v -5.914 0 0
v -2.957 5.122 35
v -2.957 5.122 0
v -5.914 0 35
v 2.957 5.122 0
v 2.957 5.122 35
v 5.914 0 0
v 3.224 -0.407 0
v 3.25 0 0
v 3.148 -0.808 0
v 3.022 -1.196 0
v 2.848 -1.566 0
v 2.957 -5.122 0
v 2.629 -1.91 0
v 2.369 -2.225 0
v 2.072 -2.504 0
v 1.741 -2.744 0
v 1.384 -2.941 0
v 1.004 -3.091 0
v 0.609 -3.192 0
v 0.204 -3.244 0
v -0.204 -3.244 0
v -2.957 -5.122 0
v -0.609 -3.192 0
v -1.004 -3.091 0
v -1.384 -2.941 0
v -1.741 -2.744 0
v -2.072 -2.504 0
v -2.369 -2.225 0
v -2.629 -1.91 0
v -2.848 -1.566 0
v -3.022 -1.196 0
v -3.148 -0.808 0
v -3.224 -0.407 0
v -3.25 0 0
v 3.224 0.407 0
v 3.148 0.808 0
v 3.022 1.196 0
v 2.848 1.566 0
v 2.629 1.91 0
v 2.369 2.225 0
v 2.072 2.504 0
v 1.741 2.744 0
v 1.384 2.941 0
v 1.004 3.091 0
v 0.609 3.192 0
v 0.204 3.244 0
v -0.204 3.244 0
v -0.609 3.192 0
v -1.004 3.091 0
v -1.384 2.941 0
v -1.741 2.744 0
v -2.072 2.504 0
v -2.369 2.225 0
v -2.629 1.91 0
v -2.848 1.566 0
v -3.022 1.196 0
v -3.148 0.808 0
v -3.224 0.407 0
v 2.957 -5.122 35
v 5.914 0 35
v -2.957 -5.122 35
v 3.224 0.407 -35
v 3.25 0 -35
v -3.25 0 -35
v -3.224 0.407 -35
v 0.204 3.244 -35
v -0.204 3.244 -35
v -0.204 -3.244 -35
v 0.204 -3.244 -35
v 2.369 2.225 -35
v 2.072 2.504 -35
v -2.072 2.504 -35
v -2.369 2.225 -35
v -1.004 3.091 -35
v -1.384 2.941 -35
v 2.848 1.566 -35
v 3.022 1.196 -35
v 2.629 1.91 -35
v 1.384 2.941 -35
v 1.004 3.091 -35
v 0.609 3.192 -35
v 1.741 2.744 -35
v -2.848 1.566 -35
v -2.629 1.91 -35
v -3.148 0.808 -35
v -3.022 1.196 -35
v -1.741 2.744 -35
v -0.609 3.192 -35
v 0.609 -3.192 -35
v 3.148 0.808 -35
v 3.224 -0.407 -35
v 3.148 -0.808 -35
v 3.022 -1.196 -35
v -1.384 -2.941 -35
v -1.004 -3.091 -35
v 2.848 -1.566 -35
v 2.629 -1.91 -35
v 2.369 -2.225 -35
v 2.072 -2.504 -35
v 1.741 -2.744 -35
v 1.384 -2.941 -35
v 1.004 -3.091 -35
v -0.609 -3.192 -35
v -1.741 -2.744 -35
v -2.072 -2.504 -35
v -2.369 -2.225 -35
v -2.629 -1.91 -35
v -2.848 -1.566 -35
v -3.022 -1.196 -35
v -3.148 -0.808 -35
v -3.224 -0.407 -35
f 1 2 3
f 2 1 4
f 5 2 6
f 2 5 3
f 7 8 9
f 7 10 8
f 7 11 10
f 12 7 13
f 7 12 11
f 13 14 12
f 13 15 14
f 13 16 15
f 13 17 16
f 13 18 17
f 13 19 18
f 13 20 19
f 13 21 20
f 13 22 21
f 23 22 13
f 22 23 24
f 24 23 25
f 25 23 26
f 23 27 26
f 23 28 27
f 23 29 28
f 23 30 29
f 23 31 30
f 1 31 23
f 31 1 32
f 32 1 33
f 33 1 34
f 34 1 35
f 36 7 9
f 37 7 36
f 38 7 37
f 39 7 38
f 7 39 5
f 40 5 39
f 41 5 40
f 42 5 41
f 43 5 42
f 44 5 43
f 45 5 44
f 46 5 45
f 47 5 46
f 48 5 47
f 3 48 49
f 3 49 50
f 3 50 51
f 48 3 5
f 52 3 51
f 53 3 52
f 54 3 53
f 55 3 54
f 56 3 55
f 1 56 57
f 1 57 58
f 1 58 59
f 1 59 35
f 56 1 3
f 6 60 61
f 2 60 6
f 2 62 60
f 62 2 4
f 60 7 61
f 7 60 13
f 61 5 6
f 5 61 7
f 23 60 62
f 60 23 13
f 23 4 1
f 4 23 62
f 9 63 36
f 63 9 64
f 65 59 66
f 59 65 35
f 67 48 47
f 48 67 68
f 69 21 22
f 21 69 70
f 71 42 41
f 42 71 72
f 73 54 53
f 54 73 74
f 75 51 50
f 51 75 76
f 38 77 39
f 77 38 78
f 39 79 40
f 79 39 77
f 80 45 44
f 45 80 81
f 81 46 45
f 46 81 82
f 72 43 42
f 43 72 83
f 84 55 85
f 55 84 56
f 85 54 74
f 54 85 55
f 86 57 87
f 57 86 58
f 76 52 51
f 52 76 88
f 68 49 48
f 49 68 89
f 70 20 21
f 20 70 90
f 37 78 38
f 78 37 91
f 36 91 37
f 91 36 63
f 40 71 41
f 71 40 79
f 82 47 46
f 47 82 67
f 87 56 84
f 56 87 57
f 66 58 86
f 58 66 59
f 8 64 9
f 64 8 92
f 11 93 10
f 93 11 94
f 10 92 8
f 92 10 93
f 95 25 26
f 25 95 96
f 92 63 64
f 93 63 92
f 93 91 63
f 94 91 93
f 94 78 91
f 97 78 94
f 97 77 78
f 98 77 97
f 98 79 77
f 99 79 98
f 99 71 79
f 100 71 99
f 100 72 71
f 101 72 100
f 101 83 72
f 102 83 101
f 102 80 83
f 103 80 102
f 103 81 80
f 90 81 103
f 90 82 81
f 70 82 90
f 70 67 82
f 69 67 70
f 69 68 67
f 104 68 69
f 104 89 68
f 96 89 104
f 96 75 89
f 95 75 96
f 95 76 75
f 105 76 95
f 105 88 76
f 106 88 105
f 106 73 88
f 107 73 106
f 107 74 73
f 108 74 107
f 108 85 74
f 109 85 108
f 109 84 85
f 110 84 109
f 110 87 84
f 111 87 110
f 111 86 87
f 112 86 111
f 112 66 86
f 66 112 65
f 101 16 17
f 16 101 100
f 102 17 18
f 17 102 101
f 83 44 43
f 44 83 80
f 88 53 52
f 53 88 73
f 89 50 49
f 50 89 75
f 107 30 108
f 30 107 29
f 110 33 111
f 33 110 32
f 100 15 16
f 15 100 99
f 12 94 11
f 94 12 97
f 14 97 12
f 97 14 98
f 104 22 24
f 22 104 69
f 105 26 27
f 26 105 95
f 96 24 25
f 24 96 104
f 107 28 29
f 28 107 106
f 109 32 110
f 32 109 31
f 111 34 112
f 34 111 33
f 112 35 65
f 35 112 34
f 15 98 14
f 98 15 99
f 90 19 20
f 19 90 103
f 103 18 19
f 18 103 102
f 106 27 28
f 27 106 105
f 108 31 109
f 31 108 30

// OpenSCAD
$fn = 50;


difference() {
	union() {
		translate(v = [0, 0, 0]) {
			rotate(a = [0, 0, 0]) {
				translate(v = [0, 0, 0]) {
					rotate(a = [0, 0, 0]) {
						linear_extrude(height = 35) {
							polygon(points = [[5.9142500000, 0.0000000000], [2.9571250000, 5.1218907443], [-2.9571250000, 5.1218907443], [-5.9142500000, 0.0000000000], [-2.9571250000, -5.1218907443], [2.9571250000, -5.1218907443]]);
						}
					}
				}
			}
		}
		translate(v = [0, 0, -35]) {
			rotate(a = [0, 0, 0]) {
				cylinder(h = 35, r = 3.2500000000);
			}
		}
	}
	union();
}
